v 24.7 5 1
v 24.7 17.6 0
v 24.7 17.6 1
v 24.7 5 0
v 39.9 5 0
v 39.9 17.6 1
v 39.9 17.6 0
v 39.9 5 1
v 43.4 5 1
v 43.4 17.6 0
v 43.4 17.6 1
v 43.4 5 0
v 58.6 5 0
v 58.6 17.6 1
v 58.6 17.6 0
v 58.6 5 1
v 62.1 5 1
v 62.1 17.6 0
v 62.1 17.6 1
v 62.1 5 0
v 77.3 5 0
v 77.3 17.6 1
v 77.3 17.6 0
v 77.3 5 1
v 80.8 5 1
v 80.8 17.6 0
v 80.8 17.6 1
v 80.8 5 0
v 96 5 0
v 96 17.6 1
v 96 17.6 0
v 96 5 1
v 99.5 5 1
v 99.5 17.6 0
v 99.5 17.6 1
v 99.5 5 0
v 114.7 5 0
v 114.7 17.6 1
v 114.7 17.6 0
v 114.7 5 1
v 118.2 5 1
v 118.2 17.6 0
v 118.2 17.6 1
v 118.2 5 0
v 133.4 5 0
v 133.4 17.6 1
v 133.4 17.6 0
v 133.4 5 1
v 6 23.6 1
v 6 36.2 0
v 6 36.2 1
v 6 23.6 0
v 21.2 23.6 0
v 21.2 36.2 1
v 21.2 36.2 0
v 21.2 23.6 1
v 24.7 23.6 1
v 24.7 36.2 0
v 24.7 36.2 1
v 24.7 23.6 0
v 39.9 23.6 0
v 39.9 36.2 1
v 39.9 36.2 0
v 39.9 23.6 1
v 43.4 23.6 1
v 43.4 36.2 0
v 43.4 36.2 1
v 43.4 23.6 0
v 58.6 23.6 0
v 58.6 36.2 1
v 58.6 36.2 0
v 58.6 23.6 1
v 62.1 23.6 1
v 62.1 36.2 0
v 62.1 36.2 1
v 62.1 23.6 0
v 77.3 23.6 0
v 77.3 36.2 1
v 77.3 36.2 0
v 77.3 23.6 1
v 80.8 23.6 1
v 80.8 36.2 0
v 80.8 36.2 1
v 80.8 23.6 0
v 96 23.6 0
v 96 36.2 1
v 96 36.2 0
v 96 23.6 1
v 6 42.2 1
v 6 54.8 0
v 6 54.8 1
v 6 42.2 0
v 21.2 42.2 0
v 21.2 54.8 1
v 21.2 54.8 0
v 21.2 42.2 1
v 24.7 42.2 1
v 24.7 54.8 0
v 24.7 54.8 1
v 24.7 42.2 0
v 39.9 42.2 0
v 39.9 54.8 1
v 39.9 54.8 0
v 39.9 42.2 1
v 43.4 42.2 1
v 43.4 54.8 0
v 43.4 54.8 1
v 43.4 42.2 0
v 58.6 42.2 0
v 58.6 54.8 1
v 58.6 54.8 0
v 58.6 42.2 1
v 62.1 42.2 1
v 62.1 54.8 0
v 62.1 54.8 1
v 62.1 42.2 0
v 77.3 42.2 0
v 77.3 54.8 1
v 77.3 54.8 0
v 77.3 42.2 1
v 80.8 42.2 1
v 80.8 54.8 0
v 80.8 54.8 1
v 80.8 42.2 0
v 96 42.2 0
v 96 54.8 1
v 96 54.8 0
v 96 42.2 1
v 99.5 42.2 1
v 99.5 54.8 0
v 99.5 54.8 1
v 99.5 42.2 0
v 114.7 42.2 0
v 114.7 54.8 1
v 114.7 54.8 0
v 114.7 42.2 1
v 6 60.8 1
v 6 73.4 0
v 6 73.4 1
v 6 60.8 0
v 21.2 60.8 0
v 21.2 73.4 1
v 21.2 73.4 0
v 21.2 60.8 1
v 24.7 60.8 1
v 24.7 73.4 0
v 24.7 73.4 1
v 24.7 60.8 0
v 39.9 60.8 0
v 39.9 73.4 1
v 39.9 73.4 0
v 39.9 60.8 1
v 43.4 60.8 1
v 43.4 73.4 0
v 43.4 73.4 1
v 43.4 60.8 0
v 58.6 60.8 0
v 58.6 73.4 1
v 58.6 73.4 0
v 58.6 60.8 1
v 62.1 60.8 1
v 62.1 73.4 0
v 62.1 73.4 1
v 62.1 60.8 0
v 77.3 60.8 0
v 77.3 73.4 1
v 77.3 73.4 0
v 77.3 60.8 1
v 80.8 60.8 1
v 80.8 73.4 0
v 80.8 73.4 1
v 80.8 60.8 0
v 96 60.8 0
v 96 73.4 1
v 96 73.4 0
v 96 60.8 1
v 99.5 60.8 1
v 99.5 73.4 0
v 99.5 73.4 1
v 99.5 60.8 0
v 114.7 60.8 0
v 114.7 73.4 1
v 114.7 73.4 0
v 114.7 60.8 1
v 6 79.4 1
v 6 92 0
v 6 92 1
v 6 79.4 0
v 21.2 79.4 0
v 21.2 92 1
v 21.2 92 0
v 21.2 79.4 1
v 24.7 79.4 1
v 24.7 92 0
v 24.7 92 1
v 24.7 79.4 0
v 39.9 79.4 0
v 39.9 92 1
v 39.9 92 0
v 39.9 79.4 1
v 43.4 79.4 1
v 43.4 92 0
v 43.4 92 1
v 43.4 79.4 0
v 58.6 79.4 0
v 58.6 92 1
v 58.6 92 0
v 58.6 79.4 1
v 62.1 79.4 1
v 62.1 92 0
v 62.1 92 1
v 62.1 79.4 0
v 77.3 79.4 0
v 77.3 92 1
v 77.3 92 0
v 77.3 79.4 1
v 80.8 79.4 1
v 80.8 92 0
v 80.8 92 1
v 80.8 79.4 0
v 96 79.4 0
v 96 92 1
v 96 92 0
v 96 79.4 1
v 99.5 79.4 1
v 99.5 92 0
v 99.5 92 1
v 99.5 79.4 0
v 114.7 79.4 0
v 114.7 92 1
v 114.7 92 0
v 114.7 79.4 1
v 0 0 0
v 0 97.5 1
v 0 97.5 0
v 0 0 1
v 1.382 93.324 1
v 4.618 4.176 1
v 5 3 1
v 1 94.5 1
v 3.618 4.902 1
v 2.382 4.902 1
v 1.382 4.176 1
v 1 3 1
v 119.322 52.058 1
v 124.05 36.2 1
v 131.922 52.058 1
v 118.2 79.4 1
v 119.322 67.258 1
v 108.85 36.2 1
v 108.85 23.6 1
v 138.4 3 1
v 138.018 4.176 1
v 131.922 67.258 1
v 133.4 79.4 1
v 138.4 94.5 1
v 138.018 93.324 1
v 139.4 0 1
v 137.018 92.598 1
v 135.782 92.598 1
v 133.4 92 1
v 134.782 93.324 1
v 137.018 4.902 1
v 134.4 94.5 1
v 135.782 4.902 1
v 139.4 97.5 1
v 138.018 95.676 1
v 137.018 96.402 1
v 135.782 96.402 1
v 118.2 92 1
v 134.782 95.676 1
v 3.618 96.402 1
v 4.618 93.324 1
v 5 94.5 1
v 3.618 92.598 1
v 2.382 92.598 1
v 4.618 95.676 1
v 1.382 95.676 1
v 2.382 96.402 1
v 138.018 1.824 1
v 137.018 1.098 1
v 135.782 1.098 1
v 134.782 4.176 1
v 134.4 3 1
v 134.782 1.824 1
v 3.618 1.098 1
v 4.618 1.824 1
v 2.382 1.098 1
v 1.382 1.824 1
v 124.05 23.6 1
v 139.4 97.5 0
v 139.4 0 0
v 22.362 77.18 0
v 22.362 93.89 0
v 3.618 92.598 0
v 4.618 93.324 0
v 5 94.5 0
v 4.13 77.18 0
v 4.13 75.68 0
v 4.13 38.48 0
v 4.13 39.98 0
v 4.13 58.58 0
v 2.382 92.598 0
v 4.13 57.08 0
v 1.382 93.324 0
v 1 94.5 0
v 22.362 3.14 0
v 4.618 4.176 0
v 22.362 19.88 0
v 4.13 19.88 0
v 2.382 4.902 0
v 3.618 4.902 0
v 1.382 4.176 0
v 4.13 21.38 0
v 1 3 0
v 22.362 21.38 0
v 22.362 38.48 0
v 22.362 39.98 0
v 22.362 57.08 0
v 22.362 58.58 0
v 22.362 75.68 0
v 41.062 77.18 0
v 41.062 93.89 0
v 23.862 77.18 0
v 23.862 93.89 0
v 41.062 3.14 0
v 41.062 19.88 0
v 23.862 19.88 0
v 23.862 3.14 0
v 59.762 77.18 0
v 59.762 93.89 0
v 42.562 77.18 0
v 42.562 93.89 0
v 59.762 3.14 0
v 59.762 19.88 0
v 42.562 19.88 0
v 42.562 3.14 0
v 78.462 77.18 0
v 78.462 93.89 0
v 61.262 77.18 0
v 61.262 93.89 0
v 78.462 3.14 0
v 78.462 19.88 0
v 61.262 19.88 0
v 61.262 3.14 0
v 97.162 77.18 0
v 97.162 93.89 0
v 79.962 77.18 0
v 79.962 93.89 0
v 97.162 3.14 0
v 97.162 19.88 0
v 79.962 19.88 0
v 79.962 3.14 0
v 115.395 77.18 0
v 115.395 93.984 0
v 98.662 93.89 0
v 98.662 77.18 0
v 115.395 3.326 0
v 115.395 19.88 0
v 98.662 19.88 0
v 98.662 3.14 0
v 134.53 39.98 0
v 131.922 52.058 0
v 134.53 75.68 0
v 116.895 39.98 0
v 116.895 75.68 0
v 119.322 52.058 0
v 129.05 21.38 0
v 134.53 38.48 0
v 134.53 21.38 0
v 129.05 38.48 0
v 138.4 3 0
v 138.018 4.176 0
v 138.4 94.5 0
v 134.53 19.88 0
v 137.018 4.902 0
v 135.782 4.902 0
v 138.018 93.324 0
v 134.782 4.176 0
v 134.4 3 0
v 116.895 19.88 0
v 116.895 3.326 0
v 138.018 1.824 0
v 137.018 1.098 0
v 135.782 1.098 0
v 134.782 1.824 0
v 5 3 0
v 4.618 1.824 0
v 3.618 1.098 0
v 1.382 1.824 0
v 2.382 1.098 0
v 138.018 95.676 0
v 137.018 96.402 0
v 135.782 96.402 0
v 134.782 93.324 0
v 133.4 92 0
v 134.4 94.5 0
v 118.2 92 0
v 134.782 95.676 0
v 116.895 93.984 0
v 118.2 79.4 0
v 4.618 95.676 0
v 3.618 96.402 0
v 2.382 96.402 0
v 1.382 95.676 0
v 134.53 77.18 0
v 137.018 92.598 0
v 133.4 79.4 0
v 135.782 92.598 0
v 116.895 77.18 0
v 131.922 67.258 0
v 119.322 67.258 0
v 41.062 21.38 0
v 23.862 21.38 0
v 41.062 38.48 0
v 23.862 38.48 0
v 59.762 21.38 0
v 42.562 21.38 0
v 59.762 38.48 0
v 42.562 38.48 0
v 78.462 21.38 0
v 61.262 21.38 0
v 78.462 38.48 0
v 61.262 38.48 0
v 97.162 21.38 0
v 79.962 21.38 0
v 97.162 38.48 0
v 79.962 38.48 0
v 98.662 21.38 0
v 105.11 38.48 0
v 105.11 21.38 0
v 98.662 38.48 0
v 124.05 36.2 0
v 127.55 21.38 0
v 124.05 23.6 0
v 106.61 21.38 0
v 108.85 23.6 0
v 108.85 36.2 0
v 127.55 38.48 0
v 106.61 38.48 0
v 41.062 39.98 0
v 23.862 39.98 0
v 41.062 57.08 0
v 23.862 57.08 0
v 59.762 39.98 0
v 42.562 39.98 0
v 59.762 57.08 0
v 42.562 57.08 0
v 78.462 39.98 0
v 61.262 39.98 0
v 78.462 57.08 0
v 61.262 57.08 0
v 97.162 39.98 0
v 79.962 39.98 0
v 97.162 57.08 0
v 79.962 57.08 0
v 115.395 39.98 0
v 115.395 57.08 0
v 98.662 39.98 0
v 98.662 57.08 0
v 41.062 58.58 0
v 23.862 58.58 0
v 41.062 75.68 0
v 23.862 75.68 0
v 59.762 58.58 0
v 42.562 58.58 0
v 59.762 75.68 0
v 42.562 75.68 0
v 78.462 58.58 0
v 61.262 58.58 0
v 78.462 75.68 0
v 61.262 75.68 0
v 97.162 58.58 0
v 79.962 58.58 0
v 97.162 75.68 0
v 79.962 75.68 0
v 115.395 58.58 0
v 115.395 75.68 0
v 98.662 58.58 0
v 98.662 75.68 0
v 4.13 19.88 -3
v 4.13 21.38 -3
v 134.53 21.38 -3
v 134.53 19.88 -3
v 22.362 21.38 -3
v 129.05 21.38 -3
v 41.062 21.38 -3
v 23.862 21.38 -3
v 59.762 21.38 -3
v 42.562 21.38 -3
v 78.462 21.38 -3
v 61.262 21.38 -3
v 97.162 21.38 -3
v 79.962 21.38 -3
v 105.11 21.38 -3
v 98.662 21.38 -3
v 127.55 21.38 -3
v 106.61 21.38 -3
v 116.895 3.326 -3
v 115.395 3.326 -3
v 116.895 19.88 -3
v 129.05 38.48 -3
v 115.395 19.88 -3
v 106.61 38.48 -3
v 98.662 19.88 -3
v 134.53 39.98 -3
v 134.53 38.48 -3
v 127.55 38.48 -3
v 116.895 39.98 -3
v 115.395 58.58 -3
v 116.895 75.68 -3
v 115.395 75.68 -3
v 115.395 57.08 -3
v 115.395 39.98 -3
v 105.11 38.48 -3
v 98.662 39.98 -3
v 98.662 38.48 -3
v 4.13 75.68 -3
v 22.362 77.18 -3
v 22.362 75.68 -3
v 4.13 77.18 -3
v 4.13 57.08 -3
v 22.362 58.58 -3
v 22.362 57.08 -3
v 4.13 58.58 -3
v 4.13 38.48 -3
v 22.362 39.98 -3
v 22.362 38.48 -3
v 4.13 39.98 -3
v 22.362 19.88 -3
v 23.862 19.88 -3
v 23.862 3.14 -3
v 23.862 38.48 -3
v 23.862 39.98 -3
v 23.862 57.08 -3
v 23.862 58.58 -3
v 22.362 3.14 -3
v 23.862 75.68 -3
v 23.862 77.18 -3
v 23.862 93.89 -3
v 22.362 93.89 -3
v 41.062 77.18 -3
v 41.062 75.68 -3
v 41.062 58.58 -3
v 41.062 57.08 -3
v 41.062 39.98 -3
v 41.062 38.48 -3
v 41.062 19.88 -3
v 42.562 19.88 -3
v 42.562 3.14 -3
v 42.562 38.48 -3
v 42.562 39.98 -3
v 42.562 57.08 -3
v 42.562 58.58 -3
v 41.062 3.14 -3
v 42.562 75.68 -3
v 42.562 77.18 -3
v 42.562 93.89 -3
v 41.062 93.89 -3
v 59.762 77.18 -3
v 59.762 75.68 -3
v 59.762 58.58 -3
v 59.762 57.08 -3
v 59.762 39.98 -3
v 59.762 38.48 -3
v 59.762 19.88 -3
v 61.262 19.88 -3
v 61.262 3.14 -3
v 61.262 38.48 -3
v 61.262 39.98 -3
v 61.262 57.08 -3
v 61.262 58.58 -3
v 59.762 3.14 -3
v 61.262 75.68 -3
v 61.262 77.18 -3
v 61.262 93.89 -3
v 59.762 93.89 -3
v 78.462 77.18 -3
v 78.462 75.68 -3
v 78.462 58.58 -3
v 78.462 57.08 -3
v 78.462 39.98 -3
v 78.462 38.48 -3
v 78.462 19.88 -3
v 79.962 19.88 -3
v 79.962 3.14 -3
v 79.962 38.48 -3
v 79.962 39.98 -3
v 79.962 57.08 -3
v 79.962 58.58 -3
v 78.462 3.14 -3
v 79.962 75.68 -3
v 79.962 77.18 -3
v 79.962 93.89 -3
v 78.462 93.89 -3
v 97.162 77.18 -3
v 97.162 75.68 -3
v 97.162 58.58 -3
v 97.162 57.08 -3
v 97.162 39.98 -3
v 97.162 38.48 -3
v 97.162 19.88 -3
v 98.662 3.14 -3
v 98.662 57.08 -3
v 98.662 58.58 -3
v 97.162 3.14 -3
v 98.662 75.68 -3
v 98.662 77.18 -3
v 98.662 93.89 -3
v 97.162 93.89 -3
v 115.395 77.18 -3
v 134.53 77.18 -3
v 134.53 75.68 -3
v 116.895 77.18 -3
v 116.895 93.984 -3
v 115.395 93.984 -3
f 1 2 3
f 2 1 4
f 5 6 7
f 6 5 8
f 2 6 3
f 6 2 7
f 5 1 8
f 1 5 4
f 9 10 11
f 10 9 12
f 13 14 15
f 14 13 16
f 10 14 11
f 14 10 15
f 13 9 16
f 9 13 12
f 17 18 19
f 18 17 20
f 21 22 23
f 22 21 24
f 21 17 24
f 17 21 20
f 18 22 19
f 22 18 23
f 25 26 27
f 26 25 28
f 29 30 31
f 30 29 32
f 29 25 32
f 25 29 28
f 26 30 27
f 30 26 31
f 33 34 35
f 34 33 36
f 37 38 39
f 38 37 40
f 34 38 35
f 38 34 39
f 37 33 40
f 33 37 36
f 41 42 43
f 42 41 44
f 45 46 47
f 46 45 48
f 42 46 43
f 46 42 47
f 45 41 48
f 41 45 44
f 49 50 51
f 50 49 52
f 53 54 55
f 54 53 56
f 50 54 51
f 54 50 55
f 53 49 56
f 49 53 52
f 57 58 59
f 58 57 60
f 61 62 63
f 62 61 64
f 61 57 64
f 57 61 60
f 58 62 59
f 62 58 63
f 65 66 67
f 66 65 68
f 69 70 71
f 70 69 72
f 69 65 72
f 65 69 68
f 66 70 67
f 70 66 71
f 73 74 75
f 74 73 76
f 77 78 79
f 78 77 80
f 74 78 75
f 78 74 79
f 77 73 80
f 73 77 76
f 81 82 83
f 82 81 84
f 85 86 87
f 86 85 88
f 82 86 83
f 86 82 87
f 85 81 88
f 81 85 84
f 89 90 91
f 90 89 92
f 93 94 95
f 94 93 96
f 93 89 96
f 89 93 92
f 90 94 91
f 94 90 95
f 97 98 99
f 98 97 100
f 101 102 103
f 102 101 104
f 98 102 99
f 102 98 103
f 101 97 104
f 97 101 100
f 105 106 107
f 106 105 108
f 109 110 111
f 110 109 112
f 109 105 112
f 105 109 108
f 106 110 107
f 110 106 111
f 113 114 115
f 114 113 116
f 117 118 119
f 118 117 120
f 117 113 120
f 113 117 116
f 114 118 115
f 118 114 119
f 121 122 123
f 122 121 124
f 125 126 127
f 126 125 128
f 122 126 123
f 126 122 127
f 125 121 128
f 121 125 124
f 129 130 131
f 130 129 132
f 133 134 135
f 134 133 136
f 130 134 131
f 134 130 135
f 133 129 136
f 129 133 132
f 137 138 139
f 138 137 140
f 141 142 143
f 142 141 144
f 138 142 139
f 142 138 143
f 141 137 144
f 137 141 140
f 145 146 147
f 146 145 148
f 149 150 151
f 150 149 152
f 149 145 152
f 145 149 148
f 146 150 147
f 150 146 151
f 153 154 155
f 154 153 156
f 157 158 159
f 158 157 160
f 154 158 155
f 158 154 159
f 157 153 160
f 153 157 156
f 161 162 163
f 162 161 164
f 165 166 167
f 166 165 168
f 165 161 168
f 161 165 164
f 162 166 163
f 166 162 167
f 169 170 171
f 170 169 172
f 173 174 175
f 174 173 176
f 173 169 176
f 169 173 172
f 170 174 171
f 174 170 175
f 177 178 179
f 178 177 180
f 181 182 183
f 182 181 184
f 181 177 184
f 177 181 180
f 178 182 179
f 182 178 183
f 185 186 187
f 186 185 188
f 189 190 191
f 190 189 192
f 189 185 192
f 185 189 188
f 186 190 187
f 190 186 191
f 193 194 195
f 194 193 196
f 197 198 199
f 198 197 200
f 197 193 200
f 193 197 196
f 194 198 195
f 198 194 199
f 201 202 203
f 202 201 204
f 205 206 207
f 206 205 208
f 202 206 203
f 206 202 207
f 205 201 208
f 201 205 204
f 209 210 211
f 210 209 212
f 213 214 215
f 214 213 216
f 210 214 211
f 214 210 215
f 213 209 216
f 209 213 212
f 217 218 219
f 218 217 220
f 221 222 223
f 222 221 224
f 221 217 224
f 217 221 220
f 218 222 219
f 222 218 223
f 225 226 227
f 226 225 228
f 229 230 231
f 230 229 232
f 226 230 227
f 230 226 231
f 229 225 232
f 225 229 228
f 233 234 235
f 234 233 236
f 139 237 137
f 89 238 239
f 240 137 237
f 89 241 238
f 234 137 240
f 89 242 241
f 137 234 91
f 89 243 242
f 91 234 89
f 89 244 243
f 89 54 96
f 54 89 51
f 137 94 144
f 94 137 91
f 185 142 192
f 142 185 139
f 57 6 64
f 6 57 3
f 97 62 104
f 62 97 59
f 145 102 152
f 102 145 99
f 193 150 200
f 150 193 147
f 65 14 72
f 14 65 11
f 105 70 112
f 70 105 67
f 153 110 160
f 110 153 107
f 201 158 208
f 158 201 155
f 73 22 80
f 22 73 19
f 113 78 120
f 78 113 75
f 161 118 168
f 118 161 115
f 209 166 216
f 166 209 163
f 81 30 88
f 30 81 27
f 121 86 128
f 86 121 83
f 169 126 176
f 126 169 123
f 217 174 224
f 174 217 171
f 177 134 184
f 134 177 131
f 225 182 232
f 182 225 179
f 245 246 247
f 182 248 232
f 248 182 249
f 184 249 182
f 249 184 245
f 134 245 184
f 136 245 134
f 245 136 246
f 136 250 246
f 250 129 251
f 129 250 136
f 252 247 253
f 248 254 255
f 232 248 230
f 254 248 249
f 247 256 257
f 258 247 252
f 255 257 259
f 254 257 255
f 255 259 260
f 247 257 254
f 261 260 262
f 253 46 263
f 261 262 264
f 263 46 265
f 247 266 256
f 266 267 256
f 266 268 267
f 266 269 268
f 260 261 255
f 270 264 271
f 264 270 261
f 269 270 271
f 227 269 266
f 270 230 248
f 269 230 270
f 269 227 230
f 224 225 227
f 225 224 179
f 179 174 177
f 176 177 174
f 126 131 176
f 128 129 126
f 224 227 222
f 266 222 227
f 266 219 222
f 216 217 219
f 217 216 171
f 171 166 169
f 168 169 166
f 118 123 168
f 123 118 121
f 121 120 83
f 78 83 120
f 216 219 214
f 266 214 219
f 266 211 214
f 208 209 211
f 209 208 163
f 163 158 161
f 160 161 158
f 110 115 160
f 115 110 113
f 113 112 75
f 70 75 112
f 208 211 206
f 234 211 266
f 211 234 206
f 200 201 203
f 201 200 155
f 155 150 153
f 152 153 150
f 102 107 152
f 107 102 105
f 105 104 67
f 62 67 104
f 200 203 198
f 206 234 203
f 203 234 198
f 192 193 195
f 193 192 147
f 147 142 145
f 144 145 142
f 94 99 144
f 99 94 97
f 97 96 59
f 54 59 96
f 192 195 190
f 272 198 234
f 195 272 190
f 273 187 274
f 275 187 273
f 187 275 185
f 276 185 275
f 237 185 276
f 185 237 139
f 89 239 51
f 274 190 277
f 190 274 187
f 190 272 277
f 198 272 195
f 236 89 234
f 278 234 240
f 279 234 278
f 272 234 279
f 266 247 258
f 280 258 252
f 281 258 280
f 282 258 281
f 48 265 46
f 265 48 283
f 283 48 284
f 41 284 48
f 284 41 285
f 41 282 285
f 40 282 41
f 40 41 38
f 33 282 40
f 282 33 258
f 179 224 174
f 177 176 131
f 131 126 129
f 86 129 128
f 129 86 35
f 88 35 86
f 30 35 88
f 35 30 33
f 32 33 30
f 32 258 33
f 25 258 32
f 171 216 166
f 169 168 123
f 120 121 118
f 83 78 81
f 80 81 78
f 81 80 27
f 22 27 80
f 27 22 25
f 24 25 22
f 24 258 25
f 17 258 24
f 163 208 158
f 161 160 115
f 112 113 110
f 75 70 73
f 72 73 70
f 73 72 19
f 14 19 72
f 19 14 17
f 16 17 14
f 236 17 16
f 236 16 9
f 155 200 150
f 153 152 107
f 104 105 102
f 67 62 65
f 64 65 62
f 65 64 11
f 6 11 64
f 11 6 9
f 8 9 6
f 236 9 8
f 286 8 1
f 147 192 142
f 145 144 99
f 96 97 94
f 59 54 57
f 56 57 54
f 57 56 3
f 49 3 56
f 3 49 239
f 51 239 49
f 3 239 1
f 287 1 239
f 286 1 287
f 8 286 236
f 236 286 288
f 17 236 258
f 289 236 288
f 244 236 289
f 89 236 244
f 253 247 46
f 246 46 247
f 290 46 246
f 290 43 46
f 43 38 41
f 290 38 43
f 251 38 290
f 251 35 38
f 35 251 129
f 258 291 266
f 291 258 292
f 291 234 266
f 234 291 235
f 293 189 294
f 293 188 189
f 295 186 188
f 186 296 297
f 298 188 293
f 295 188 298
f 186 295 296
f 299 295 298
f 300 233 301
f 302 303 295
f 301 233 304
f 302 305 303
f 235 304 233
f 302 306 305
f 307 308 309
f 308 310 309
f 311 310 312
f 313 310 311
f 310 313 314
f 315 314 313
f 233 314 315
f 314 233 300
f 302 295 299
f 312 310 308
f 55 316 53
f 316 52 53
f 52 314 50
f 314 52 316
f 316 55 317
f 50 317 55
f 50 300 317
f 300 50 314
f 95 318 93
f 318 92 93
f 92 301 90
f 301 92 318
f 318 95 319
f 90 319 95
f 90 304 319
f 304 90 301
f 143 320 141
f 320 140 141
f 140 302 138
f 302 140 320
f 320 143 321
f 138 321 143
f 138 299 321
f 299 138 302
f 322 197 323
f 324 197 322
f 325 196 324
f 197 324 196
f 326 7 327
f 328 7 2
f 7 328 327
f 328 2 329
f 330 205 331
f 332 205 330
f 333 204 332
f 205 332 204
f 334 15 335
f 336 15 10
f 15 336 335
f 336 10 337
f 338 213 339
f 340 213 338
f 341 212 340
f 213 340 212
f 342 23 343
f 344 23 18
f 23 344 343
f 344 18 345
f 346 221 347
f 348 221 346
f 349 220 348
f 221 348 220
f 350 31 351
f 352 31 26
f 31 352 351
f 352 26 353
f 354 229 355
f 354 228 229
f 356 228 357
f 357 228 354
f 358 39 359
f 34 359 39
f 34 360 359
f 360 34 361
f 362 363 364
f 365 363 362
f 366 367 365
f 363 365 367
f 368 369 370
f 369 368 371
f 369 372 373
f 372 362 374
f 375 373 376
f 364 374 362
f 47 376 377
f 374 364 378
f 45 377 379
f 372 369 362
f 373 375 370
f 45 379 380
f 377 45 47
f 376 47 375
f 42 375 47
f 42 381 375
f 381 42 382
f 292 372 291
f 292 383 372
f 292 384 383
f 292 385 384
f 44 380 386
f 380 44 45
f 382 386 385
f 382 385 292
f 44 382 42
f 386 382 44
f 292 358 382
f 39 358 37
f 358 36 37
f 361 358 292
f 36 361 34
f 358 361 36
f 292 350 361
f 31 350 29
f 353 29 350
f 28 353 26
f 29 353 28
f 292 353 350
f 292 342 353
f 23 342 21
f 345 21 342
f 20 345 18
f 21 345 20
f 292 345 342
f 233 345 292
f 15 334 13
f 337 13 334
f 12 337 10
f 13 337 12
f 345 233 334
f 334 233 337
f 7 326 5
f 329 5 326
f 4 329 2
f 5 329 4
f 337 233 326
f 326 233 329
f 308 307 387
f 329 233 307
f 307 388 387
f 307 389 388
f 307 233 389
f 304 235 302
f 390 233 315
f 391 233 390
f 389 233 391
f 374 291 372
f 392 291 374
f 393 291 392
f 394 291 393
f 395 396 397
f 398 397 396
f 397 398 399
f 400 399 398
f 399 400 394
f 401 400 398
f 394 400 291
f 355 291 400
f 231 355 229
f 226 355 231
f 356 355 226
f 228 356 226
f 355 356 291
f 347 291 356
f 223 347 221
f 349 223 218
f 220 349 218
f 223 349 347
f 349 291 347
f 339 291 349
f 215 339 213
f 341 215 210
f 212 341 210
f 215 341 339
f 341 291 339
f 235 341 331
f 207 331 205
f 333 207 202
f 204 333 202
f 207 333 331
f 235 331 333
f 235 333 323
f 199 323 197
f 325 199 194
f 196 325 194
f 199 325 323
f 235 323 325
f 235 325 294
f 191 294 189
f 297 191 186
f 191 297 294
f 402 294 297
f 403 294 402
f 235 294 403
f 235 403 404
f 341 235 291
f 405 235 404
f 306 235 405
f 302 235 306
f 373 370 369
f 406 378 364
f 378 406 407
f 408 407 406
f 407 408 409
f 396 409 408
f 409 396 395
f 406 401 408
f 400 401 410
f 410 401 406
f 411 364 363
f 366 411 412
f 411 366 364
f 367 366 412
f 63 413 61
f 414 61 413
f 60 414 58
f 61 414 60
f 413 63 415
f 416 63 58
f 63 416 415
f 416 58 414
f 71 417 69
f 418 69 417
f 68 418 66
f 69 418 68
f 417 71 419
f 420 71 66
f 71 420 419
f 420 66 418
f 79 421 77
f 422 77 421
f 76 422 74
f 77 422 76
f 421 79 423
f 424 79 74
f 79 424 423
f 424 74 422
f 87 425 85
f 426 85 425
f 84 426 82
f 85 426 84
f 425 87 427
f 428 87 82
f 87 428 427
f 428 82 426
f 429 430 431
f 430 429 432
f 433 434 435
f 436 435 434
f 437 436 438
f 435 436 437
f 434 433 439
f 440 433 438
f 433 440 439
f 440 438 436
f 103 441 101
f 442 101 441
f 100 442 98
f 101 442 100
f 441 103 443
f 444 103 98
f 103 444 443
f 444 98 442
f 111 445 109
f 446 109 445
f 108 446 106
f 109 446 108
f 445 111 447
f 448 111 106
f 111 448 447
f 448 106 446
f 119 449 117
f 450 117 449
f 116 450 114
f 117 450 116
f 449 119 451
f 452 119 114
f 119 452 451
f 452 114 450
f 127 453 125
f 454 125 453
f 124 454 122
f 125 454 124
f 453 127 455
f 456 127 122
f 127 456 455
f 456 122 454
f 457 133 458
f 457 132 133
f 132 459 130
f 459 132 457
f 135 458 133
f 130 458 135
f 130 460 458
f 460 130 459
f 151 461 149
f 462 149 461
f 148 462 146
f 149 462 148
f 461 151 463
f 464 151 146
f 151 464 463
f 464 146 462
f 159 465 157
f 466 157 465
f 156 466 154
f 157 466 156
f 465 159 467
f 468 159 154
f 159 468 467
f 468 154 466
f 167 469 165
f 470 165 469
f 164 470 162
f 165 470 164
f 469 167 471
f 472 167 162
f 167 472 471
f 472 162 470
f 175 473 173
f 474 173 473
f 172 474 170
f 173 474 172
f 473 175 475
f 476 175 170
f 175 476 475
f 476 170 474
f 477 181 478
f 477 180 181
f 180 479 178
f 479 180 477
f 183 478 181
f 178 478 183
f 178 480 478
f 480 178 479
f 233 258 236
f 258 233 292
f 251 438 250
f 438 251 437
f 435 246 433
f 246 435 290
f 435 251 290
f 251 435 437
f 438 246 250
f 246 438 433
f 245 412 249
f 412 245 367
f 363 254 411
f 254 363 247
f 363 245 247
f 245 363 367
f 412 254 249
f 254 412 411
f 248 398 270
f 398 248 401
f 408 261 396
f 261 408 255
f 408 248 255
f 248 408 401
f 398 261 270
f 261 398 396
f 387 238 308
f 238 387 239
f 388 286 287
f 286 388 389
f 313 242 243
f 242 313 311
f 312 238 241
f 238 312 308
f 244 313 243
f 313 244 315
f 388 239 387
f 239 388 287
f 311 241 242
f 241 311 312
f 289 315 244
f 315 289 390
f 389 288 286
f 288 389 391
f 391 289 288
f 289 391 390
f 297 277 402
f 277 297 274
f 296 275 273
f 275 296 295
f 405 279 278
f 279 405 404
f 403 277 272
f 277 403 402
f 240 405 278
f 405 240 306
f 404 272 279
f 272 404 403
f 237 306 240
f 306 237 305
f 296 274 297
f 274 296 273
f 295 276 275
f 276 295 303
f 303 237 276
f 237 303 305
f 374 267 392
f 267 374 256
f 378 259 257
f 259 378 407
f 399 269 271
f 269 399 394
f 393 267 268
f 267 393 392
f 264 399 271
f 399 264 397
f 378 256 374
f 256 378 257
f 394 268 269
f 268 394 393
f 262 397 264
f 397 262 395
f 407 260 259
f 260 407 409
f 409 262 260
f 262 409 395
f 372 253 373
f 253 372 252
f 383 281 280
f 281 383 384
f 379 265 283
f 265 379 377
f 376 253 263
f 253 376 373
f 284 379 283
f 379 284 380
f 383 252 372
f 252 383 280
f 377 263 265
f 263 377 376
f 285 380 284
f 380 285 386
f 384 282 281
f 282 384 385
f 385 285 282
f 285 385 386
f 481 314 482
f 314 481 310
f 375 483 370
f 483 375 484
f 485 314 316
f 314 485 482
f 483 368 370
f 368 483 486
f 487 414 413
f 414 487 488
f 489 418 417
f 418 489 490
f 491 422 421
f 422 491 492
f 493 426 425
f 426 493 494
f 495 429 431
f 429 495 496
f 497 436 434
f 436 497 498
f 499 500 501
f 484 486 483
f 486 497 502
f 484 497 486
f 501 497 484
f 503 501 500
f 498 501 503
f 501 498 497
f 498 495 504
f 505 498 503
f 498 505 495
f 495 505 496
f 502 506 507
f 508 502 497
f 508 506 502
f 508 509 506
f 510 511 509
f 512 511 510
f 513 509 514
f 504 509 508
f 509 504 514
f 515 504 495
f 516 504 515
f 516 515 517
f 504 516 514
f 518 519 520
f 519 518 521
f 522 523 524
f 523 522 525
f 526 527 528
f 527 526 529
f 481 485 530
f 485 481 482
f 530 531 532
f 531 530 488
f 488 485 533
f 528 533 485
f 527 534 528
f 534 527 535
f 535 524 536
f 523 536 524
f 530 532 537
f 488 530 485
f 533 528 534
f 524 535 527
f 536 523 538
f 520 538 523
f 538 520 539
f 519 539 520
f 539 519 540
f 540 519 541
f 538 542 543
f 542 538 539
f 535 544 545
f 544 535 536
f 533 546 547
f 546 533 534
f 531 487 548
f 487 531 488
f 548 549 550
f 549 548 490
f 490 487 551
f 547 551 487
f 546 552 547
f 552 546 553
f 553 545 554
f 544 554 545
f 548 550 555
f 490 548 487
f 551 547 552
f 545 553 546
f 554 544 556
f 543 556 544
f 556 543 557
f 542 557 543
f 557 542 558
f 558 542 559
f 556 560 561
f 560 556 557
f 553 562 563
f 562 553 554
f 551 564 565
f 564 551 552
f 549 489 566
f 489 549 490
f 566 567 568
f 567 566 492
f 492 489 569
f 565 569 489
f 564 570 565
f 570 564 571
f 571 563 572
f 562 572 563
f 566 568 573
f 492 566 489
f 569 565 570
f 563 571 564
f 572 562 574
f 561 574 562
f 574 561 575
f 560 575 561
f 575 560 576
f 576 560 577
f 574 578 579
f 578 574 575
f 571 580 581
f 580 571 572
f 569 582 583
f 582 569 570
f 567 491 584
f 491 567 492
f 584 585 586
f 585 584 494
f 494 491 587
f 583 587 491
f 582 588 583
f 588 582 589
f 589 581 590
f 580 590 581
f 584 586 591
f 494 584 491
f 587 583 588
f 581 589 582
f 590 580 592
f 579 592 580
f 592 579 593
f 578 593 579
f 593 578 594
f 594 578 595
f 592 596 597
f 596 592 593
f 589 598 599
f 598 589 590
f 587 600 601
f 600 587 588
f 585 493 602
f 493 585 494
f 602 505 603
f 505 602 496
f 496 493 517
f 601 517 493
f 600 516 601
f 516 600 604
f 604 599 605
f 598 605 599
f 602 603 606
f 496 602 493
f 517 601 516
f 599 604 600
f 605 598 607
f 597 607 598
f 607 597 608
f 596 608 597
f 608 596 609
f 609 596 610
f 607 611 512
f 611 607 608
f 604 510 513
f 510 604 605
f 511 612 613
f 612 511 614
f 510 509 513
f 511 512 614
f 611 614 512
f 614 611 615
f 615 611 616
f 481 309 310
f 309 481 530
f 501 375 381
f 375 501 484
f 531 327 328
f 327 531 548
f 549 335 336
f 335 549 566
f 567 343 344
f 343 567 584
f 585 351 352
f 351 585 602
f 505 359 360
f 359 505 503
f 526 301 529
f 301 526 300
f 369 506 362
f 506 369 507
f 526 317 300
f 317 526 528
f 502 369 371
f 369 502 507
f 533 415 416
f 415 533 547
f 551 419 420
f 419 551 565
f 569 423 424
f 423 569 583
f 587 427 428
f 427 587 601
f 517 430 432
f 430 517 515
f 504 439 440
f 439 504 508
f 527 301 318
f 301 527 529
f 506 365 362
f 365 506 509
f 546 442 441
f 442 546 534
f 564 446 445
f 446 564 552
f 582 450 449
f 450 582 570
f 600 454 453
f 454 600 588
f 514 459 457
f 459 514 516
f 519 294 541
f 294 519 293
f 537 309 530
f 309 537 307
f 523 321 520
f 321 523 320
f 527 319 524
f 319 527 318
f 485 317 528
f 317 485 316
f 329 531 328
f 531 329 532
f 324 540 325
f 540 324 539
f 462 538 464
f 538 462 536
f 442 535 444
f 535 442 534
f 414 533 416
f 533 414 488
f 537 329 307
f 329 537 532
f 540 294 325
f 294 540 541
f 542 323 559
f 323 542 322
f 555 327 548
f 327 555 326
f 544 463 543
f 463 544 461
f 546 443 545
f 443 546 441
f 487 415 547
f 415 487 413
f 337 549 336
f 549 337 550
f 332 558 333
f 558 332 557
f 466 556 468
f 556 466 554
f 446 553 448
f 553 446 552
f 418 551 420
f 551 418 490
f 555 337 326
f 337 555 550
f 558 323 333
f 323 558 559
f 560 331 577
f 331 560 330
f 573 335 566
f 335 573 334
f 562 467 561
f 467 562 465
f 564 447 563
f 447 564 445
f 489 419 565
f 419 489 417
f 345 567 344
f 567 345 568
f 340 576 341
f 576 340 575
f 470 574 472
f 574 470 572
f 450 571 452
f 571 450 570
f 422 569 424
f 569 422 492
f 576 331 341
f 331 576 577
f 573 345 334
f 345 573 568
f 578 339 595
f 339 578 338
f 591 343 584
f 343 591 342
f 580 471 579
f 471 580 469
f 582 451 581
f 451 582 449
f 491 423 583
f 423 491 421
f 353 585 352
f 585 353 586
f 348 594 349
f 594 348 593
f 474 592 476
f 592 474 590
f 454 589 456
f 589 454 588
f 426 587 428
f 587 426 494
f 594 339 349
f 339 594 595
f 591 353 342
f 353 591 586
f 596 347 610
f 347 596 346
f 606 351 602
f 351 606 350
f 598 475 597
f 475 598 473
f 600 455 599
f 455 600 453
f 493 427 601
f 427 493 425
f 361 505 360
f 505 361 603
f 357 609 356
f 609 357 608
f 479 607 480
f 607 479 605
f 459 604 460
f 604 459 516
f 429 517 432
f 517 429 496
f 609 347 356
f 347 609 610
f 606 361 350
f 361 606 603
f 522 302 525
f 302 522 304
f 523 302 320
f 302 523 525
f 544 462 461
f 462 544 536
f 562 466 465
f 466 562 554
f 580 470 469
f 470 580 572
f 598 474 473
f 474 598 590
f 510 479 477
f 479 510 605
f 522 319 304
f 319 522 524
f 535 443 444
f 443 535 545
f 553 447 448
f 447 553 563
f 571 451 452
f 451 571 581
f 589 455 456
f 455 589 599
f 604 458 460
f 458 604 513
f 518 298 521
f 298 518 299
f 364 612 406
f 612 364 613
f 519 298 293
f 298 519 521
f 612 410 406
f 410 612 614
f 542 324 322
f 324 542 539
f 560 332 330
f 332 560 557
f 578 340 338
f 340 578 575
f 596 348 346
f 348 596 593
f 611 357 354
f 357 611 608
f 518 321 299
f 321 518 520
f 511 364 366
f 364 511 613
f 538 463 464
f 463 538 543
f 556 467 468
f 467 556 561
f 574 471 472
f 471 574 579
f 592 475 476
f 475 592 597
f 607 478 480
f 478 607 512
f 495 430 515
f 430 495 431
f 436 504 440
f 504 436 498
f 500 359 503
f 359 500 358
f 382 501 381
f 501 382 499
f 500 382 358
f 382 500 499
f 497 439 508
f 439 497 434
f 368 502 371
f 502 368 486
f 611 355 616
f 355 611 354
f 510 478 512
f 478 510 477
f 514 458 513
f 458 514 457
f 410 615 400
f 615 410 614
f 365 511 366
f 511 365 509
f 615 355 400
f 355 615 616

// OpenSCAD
/* Module A v2
 * Fewer keys
 * Keycaps actually fit
 * Cross beams for support
 * Keys actally  fit, snuggly
 */
 
keyCols = 7;
keyRows = 5;
keyX = 15.2;
keyY = 12.6;
keySpace = 3.5;
vKeySpace=6;
edgeSpaceAddition = 4;
edgeSpace = (edgeSpaceAddition*2)-keySpace;
keyZ = -1;

supportH = 3.5;
supportW = 1.5;
supportZ = -3;

moduleX = (edgeSpace+edgeSpaceAddition)+(keySpace*keyCols)+keyX*(keyCols-1)+keyX;
moduleY = (edgeSpaceAddition*2-keySpace)+(vKeySpace*keyRows)+keyY*(keyRows-1)+keyY;
moduleZ = 1;

keySize = [keyX, keyY, moduleZ+2];

function position(x,y,z) = [edgeSpace+keySpace*x+keyX*(x-1)-(edgeSpaceAddition/2), edgeSpace-keySpace+(vKeySpace)*y+keyY*(y-1)-(edgeSpaceAddition/2), z];

module screwHole (x, y){
	translate([x,y,keyZ]) cylinder(h=moduleZ+2, r=2, $fn=10);
}

module keyHoles (yStart, yEnd, xStart, xEnd){
  for(y = [yStart:yEnd]){
    for(x = [xStart:xEnd]){
      translate(position(x,y,keyZ)) cube(keySize);
    }
  }
}

module keyHoles2 (yStart, yEnd, xStart, xEnd, keySize){
  for(y = [yStart:yEnd]){
    for(x = [xStart:xEnd]){
      translate(position(x,y,keyZ)) cube(keySize);
    }
  }
}

module hBeam (bStart, bEnd){
  for (b = [bStart:bEnd]){  
    color([0.5,0,0]){
      translate(position(0.9,b-0.2,supportZ)){  
        cube([moduleX-(edgeSpace*2),supportW,supportH]);
      }
    }
  }
}

module hBeam2 (xStart, xEnd, yStart, yEnd){
  for(y = [yStart:yEnd]){
    color([0.5,0,0]){
      translate(position((0.9*xStart),y-0.2,supportZ)){
        cube([(keyX*xEnd)-1.7,1.5,supportH]);
      }
    }
  }
}

module vBeam (bStart, bEnd){
  for (b = [bStart:bEnd]){  
    color([0.5,0,0]){
      translate(position(b-0.125,0.9,supportZ)){  
        cube([1.5,moduleY-(edgeSpace*1.5),supportH]);
      }
    }
  }
}

module vBeam2 (xStart, xEnd, yStart, yEnd){
  for (x = [xStart:xEnd]){  
      color([0.5,0,0]){
        translate(position(x,yStart,supportZ)){  
          cube([1.5,(keyY*yEnd)-1.7,supportH]);
        }
      }
    }
}


difference(){
  cube([moduleX,moduleY,moduleZ]);
  keyHoles(1,1,2,7);
  keyHoles(2,2,1,5);
  keyHoles(2,2,6.5,6.5);
  keyHoles(3,5,1,6);
  //keyHoles(3.6,3.6,7,7);
  keyHoles2(3.53,3.53,7.06,7.06, [keyY, keyX, moduleZ+2]);
  keyHoles(5,5,7,7);

  
  screwHole(3,3);
  screwHole(3,moduleY-3);
	screwHole(moduleX-3,moduleY-3);
	screwHole(moduleX-3,3);
}

hBeam(2, 3);
hBeam2(1, 7.5,4,4);
hBeam(5,5);

vBeam(2, 6);
vBeam2(6.3, 6.3, 1.8,1.7);
vBeam2(6.85, 6.85, 0.91,1.5);
vBeam2(7.5, 7.5, 1.8,1.7);
vBeam2(6.85, 6.85, 2.8,4.54);
